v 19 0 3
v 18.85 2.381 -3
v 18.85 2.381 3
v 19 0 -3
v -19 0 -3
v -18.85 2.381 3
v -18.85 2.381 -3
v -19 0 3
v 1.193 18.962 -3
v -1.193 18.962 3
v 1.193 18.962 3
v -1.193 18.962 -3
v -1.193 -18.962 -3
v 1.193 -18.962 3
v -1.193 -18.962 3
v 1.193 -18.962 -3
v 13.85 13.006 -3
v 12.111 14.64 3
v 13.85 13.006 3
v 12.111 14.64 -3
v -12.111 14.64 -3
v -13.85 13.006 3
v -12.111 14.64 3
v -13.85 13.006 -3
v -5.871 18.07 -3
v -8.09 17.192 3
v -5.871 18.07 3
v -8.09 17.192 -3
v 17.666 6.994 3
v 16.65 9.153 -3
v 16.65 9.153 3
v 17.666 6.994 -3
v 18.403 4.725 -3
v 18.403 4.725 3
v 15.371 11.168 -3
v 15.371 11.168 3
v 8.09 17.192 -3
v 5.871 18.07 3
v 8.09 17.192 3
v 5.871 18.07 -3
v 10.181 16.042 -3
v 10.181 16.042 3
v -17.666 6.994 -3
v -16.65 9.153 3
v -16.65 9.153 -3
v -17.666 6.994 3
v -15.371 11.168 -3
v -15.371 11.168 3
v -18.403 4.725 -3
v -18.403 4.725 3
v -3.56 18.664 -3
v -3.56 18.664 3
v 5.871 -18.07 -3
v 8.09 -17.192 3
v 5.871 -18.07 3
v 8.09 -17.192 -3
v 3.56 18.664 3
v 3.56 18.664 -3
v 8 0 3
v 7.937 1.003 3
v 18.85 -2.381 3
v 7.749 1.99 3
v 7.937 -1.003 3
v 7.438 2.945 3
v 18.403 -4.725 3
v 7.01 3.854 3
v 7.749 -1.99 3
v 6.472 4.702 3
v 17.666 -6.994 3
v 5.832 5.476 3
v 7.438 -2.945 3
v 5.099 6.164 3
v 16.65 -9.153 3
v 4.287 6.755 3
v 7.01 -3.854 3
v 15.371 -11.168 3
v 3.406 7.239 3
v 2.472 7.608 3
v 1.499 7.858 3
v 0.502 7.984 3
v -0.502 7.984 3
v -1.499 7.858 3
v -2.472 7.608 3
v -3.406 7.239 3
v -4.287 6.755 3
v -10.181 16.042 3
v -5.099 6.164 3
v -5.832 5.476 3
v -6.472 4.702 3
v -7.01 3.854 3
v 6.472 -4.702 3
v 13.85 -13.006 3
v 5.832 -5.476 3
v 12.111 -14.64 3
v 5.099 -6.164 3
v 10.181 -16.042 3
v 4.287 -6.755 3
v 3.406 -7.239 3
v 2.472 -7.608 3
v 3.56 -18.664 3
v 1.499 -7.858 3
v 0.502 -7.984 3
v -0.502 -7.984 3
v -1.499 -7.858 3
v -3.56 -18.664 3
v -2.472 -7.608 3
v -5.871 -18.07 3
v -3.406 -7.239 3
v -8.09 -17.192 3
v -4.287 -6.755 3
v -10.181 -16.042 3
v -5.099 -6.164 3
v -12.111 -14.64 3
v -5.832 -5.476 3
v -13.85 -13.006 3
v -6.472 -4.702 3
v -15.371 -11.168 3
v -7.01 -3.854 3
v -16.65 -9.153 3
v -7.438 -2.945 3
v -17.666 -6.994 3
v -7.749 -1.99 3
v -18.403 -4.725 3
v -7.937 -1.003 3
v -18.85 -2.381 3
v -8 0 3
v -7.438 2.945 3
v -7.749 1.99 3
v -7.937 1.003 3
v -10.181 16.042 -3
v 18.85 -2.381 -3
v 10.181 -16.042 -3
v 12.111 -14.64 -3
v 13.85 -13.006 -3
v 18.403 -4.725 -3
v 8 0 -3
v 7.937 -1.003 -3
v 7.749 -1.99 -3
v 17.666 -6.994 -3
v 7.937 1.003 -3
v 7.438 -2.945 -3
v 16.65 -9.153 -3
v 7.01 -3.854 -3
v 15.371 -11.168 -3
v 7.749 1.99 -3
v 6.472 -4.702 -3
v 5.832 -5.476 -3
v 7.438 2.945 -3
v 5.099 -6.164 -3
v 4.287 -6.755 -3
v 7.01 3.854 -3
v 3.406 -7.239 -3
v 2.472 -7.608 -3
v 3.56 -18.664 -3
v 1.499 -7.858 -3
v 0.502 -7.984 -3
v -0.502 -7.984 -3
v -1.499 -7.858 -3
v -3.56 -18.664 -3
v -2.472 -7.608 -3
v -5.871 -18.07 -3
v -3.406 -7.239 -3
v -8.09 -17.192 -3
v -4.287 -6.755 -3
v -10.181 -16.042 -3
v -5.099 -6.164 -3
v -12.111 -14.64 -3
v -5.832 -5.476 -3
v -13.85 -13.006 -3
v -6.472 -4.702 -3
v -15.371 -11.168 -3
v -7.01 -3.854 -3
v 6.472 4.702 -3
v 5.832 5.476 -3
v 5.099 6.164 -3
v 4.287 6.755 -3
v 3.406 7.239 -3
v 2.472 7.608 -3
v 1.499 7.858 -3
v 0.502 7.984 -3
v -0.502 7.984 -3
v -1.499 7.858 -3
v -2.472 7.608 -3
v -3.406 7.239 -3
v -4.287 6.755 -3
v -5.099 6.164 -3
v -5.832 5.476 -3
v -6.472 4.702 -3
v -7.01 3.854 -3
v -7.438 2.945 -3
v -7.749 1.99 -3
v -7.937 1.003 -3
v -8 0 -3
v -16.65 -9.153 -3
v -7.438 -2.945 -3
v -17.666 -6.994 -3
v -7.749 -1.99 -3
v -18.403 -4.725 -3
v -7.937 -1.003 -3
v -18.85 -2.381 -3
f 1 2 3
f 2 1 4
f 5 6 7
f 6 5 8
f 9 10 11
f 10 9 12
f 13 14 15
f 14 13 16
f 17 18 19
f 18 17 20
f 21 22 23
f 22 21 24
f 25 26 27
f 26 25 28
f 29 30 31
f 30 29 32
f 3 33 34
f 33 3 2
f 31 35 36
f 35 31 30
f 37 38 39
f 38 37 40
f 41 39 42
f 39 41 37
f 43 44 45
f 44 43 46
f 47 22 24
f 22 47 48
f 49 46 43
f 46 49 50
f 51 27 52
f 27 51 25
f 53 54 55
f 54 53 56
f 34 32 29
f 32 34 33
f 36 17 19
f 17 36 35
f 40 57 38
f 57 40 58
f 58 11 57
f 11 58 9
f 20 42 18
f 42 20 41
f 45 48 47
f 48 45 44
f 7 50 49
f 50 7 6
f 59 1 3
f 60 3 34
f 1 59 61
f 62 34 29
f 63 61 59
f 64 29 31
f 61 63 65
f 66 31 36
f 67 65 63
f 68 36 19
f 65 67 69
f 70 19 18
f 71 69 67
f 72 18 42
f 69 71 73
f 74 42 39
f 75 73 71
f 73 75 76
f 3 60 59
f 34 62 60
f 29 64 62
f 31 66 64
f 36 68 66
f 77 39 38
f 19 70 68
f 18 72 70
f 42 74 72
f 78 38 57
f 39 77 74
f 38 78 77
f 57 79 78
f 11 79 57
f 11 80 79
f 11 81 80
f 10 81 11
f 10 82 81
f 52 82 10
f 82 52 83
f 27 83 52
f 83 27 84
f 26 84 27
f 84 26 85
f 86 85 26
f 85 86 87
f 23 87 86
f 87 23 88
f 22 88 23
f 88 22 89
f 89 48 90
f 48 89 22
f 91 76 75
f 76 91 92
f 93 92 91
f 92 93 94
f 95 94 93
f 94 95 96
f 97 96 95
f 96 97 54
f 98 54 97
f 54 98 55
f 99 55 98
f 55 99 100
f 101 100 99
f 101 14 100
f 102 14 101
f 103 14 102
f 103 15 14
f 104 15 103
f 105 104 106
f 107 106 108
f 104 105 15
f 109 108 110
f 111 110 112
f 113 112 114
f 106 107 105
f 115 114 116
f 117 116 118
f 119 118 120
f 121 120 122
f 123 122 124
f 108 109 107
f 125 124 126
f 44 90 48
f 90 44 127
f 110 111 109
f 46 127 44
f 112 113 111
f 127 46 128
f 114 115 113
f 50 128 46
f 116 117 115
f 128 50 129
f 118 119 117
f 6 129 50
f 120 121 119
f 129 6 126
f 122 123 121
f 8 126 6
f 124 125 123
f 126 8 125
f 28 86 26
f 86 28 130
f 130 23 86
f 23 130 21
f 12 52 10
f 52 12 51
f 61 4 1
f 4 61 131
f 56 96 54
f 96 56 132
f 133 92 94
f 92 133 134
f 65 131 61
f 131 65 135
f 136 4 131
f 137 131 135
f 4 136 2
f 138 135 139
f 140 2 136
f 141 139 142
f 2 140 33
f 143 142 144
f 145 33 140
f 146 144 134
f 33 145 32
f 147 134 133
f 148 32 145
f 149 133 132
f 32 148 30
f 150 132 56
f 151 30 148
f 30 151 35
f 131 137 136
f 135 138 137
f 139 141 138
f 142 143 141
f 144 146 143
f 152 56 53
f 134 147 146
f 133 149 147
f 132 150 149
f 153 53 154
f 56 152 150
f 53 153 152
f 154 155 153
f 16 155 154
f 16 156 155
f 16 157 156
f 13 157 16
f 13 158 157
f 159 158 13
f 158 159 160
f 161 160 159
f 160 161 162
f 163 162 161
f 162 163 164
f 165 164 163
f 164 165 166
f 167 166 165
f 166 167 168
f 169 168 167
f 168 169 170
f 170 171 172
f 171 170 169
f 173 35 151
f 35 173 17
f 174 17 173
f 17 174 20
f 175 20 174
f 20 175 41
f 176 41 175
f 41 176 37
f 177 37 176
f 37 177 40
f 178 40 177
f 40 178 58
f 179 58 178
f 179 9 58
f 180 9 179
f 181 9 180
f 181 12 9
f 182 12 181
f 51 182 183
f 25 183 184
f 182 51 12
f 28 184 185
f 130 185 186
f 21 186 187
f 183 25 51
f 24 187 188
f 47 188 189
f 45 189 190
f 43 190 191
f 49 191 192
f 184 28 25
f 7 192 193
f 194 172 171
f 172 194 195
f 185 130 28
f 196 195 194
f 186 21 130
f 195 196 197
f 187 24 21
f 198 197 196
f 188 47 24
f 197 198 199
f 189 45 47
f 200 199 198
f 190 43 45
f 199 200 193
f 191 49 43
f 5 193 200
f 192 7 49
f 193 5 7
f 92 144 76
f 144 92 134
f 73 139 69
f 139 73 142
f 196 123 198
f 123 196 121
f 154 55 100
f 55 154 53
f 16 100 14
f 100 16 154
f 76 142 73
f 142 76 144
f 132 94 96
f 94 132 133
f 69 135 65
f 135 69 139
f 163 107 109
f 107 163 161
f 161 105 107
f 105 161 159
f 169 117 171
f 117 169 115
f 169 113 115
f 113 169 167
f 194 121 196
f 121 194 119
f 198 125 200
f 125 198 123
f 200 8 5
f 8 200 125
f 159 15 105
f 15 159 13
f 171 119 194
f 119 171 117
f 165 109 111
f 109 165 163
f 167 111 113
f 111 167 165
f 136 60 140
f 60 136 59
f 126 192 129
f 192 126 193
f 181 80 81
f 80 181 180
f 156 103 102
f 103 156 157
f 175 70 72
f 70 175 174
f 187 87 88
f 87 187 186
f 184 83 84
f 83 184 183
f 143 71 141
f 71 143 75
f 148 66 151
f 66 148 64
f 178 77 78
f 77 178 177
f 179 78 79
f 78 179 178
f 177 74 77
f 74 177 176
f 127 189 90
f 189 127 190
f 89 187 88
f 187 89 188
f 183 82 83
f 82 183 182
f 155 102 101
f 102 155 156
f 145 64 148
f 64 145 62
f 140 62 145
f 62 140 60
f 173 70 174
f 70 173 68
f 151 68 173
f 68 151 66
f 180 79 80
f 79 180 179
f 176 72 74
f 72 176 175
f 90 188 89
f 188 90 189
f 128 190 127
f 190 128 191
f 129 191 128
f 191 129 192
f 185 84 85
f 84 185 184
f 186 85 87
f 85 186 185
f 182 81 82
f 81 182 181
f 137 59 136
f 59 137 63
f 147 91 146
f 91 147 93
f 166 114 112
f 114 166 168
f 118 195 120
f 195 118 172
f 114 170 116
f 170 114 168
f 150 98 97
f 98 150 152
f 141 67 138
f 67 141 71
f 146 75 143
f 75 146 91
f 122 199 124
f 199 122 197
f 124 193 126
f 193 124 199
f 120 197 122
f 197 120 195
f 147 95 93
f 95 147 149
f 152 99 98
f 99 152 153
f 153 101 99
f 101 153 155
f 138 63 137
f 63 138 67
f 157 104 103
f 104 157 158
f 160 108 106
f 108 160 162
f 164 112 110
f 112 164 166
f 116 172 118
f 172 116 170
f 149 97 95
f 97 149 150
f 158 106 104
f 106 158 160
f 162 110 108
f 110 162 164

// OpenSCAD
$fn = 50;


difference() {
	union() {
		translate(v = [0, 0, -3.0000000000]) {
			cylinder(h = 6, r = 19.0000000000);
		}
	}
	union() {
		translate(v = [0, 0, -100.0000000000]) {
			cylinder(h = 200, r = 8);
		}
	}
}
